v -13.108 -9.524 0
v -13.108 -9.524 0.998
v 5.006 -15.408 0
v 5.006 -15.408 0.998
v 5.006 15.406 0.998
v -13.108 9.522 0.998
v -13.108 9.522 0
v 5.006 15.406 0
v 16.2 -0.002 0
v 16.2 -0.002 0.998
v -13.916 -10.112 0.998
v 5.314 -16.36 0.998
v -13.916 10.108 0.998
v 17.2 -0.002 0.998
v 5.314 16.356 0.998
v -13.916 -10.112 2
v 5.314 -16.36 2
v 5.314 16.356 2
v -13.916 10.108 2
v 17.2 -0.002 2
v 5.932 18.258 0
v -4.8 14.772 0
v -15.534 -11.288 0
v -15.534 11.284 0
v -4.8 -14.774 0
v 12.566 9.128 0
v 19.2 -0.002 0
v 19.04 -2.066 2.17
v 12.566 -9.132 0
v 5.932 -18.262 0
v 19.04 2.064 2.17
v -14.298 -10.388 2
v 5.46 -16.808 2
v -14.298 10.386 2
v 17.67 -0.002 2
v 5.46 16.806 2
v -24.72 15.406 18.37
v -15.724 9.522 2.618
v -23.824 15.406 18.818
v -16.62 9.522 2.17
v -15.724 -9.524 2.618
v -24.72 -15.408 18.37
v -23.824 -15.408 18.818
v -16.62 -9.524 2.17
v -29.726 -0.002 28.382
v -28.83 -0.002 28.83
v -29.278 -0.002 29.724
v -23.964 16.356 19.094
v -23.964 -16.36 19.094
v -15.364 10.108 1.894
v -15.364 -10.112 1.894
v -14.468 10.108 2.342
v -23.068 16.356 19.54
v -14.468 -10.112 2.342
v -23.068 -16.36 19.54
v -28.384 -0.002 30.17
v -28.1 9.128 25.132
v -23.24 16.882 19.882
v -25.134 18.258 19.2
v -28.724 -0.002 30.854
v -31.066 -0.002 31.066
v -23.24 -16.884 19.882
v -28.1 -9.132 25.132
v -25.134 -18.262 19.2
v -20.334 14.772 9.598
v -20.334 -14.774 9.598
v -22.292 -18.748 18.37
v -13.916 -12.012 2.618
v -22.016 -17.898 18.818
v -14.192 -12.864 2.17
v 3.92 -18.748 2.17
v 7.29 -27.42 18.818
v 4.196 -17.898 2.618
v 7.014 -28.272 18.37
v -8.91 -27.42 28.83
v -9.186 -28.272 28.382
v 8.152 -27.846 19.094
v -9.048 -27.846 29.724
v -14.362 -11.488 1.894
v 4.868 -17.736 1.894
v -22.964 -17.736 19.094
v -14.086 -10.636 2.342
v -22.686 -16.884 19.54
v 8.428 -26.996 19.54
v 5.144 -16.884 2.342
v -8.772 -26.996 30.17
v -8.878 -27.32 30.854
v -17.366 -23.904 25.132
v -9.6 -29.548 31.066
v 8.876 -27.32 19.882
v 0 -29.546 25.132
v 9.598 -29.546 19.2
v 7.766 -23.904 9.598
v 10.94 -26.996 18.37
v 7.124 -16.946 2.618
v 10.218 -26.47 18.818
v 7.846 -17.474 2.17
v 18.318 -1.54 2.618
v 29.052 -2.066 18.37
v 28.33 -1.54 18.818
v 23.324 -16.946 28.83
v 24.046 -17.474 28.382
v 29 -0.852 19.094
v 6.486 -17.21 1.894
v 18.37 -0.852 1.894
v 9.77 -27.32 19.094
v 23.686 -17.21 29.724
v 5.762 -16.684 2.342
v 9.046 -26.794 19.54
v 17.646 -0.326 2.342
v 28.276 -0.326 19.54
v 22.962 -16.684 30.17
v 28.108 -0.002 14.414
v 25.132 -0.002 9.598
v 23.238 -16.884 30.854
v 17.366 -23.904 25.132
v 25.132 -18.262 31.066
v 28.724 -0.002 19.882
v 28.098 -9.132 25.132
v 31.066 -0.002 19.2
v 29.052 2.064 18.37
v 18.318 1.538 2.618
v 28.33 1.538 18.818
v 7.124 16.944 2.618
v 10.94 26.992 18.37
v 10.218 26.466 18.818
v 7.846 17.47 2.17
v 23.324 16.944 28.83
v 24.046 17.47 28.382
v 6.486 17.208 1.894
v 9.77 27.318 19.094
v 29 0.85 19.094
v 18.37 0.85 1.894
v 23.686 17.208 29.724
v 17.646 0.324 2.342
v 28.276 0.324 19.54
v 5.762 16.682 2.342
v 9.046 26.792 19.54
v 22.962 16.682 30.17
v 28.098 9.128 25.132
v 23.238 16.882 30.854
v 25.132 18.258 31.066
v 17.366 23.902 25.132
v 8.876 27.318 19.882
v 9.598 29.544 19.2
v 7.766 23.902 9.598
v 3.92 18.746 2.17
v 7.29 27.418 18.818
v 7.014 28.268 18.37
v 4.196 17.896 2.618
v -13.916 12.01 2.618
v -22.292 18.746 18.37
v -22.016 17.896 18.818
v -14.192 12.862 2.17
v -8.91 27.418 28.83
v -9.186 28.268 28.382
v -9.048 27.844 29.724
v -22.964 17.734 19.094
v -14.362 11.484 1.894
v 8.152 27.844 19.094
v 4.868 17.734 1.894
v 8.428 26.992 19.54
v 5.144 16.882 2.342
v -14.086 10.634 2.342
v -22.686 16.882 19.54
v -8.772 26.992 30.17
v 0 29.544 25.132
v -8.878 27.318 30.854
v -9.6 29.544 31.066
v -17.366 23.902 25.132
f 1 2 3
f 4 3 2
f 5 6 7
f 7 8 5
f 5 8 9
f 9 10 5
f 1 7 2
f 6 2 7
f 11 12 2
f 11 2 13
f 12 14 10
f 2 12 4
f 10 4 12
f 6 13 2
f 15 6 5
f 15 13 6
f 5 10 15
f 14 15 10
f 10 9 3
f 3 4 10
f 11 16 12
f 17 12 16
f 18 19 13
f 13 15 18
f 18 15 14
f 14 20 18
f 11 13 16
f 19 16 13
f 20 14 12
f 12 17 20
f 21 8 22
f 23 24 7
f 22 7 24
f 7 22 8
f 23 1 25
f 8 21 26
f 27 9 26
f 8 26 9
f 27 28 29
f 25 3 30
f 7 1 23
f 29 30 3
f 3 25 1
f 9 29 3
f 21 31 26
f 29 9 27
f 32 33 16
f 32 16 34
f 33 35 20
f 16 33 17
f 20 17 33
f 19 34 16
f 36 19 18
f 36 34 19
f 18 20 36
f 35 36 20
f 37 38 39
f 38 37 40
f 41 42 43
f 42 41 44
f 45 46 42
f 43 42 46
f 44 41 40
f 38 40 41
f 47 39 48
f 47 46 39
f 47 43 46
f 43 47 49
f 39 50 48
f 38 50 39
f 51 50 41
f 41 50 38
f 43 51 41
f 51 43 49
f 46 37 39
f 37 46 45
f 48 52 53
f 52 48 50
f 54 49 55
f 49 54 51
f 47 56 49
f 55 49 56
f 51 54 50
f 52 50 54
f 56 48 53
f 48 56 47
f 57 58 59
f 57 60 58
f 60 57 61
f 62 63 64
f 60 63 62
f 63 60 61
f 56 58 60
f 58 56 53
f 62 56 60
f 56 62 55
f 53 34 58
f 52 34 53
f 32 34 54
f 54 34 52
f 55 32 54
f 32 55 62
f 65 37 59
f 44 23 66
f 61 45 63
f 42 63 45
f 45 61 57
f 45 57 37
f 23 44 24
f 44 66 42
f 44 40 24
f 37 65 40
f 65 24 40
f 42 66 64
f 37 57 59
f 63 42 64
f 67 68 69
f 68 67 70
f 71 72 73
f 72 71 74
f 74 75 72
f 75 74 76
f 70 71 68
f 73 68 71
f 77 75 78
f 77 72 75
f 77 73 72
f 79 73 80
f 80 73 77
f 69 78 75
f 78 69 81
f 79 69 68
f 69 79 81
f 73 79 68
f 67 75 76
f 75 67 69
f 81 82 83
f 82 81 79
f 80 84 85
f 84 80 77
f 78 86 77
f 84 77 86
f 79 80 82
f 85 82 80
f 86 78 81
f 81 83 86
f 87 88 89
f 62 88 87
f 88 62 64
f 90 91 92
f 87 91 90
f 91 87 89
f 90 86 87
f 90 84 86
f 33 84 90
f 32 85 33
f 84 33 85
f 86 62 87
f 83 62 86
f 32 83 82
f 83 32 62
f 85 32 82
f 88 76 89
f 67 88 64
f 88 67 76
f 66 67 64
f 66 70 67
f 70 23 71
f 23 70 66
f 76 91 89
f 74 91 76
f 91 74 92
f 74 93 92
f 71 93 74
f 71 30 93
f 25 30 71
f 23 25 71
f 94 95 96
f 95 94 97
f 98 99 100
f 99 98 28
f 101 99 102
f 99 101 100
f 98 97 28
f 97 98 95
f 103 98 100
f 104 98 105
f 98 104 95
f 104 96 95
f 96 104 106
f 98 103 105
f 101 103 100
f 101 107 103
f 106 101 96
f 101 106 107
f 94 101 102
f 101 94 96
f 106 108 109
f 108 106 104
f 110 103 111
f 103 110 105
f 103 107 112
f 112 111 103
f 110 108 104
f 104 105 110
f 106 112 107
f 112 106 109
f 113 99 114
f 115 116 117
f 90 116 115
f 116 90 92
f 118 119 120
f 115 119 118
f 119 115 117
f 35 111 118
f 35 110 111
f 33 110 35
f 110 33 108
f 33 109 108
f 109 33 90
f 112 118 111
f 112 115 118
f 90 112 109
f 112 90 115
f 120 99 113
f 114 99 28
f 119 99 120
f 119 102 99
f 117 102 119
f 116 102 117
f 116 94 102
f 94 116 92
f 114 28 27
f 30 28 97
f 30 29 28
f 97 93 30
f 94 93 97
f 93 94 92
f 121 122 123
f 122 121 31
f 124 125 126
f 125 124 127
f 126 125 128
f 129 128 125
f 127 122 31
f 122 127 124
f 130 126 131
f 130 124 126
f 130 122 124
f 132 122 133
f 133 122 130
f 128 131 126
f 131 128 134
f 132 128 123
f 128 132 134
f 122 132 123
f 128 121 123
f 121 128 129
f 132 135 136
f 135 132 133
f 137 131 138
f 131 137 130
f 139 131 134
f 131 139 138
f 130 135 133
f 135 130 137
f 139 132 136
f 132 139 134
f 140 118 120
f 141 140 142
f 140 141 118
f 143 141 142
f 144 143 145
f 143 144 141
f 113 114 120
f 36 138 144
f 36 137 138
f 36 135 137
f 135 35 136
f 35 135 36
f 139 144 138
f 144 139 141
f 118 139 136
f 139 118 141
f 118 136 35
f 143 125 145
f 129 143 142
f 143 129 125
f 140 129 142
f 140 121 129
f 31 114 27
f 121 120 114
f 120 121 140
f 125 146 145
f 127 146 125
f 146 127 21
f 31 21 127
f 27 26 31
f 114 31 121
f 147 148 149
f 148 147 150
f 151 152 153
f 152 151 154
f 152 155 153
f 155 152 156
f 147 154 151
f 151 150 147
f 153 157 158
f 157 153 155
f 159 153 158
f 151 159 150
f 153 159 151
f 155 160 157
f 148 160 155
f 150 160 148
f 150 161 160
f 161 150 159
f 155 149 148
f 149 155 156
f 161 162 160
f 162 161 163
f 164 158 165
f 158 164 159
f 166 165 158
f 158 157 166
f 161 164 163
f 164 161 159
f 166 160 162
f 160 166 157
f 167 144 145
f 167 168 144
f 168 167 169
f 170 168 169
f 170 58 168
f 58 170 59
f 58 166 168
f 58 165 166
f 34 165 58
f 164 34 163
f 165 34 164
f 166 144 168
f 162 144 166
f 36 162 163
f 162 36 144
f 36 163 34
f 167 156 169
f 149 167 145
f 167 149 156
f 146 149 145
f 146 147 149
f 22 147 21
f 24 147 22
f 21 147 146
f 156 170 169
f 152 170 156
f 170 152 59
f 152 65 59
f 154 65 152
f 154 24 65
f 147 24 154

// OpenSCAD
// dihedral angle
dA = 116.56505;
p_alpha = 90;
p_beta = 180 - dA;
p_gamma = 90 - p_beta;

pcb_radius = 17.2;
thickness = 2;
frame_thickness = 2;
window_thickness = 1;

radius = pcb_radius + frame_thickness;

pcb_window_radius = pcb_radius-window_thickness;

side_length = 2 * radius * sin(36);
height = side_length/2 * sqrt(5+2*sqrt(5));
inner_radius = side_length / 10 * sqrt(25+10*sqrt(5));

central_radius = (inner_radius + radius) /2;

p_sideA = inner_radius;
p_sideB = cos(p_gamma) * p_sideA;
p_sideC = cos(p_beta) * p_sideA;

p_height = cos(p_gamma) * height;

p_corner_height = cos(90-72) * side_length;
p_lower_height = cos(p_gamma) * p_corner_height;

echo("cube height: ", p_height + p_lower_height);

echo ();
echo (radius, inner_radius, side_length, height);
echo ();
echo (p_alpha, p_beta, p_gamma);
echo (p_sideA, p_sideB, p_sideC);

module pentagonPlate (radius, thickness, inner_radius, cut_edge)
{
difference() {

cube_len = 2 * radius;
cube_width = 2 * thickness;

cylinder(thickness, radius, radius, $fn=5);

if (cut_edge) union() {
for(i = [0:4])
{
// debugging color
color("red", 0.5)

// move all five pieces to right spot
rotate(72*i)

// move cutting cube to inner radius
translate([-inner_radius, 0, 0])

// rotate by dihedral angle of dodecahedron
rotate([ 0, dA, 0])

// move cube to negative coordinates for better rotation
translate([-cube_width, -cube_len/2, -cube_width])

// draw the corner cutting cube
cube([cube_width, cube_len, cube_width]);
}
}

// cut out for pcbs
//*

color("red", .25) {
translate([0,0,-1])
cylinder(
2,
pcb_window_radius,
pcb_window_radius,
$fn= 5
);

translate([0,0,1])
cylinder(
thickness,
pcb_radius,
pcb_radius,
$fn=5
);
}
/**/

}

}

module halfshell(){
	union() {
		// color("red", .25)
		pentagonPlate(radius, thickness, inner_radius, true);

		if (true) for (i=[0:4])
		{

			rotate([0,0,72*i])
			{
				if (false)
				{
					
					/* drawing mounting screw holes */
					pole_h = (p_height + p_lower_height)/2;
					pole_h = 8;
					pole_r1 = 1;
					pole_r2 = 5;

					translate([central_radius+pole_r1, 0, thickness])
					cylinder(pole_h, pole_r1, pole_r2, $fn=20);
				}
				
				/* drawing angled pentagons */
				//*
				translate([
					-(p_sideC + inner_radius),
					0,
					p_sideB
				])
				/**/
				rotate([180, -dA, 0])
					pentagonPlate(radius, thickness, inner_radius, true);
			}
		}
	}
}

module other_halfshell()
{

translate([0,0,(p_height + p_lower_height)])
rotate([180,0,36])
halfshell();
}

module nokia()
{
x=5.7; y=34; z=53.1;
color("blue") translate([-x/2,-y/2,0]) cube([x,y,z]);
}

halfshell();
// other_halfshell();
// nokia();
